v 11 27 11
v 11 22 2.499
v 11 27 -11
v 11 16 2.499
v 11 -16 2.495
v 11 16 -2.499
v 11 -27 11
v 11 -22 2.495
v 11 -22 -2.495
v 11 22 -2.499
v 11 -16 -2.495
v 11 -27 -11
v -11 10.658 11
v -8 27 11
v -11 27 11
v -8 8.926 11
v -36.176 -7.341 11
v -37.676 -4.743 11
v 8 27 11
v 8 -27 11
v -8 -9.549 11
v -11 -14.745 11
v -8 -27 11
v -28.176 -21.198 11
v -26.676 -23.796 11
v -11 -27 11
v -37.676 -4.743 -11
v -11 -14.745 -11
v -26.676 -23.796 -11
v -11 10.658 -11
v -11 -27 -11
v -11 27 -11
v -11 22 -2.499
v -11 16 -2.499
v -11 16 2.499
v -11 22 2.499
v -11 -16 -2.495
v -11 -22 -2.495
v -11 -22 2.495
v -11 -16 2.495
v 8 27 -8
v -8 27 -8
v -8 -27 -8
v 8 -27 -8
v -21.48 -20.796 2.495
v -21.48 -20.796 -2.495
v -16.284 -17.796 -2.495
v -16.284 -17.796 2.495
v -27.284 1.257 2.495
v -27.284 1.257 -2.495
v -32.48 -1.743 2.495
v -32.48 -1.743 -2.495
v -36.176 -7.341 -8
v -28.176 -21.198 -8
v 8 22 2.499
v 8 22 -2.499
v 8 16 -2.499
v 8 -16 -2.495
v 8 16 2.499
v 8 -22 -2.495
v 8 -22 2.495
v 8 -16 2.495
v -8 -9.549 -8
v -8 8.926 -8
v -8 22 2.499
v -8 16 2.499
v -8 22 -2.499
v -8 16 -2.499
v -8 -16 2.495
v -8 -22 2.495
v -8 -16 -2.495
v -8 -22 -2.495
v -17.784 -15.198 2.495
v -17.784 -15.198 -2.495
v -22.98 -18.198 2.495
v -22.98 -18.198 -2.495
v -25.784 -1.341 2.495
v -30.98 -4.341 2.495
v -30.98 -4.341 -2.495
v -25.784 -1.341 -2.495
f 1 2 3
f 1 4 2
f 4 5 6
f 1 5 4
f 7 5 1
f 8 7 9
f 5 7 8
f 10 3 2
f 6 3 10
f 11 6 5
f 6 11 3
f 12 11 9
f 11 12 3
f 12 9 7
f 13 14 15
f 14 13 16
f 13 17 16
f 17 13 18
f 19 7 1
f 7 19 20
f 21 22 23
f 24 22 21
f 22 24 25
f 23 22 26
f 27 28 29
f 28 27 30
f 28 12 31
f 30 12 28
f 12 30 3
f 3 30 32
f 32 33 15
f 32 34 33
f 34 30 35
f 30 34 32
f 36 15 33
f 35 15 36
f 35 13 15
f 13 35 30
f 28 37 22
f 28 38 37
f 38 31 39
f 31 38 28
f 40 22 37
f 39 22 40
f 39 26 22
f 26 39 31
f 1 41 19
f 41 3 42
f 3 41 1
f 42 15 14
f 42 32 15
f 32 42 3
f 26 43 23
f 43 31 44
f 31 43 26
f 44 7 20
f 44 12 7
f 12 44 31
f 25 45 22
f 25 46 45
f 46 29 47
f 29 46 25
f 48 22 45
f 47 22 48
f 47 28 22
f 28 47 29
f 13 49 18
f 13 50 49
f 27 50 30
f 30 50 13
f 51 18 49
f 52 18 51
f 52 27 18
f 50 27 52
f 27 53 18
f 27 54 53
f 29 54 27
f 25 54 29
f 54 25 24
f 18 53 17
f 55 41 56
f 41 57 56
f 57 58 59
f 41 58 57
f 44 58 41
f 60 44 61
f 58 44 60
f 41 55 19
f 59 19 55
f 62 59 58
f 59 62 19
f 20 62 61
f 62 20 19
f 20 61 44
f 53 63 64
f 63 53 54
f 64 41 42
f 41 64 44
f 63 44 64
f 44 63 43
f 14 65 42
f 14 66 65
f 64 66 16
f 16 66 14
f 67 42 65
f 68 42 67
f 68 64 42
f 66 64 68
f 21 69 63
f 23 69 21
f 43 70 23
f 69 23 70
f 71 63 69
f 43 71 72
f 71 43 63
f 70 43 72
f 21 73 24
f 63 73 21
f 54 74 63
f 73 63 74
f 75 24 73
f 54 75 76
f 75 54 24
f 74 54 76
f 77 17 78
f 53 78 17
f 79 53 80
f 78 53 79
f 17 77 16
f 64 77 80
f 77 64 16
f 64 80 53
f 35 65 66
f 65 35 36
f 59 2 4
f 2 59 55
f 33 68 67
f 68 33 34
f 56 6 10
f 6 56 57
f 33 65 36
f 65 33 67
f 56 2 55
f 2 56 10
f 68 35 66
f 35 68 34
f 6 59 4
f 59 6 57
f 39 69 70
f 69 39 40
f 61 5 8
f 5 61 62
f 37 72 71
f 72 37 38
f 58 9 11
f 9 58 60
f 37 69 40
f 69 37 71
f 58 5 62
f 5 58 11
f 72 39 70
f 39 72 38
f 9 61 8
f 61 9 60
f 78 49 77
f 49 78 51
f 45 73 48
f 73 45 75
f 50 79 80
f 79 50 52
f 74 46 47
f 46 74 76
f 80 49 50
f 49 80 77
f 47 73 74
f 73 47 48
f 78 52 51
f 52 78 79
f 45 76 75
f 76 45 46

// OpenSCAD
module inside_cubes(){

cube([16,56,22], center=true);

translate([0,5,0])
rotate([0,0,-60])
translate([0.6,-20,0])
cube([16,37,22], center=true);
};



module outside_cubes(){

cube([22,54,22], center=true);

translate([0,5,0])
rotate([0,0,-60])
translate([0.6,-20,0])
cube([22,35,22], center=true);
};


module fastener_cutouts(){
# translate([0,19,0])
        cube([70,6,4.999],center=true);

# translate([2.5,-19,0])
        cube([30,6,4.99],center=true);

# rotate([0,0,-60])
translate([-5,-26,0])
        cube([30,6,4.99],center=true);
};



difference(){
    outside_cubes();
    
    # translate([0,0,3]){
    inside_cubes();
    };
    
    fastener_cutouts();
}
;
